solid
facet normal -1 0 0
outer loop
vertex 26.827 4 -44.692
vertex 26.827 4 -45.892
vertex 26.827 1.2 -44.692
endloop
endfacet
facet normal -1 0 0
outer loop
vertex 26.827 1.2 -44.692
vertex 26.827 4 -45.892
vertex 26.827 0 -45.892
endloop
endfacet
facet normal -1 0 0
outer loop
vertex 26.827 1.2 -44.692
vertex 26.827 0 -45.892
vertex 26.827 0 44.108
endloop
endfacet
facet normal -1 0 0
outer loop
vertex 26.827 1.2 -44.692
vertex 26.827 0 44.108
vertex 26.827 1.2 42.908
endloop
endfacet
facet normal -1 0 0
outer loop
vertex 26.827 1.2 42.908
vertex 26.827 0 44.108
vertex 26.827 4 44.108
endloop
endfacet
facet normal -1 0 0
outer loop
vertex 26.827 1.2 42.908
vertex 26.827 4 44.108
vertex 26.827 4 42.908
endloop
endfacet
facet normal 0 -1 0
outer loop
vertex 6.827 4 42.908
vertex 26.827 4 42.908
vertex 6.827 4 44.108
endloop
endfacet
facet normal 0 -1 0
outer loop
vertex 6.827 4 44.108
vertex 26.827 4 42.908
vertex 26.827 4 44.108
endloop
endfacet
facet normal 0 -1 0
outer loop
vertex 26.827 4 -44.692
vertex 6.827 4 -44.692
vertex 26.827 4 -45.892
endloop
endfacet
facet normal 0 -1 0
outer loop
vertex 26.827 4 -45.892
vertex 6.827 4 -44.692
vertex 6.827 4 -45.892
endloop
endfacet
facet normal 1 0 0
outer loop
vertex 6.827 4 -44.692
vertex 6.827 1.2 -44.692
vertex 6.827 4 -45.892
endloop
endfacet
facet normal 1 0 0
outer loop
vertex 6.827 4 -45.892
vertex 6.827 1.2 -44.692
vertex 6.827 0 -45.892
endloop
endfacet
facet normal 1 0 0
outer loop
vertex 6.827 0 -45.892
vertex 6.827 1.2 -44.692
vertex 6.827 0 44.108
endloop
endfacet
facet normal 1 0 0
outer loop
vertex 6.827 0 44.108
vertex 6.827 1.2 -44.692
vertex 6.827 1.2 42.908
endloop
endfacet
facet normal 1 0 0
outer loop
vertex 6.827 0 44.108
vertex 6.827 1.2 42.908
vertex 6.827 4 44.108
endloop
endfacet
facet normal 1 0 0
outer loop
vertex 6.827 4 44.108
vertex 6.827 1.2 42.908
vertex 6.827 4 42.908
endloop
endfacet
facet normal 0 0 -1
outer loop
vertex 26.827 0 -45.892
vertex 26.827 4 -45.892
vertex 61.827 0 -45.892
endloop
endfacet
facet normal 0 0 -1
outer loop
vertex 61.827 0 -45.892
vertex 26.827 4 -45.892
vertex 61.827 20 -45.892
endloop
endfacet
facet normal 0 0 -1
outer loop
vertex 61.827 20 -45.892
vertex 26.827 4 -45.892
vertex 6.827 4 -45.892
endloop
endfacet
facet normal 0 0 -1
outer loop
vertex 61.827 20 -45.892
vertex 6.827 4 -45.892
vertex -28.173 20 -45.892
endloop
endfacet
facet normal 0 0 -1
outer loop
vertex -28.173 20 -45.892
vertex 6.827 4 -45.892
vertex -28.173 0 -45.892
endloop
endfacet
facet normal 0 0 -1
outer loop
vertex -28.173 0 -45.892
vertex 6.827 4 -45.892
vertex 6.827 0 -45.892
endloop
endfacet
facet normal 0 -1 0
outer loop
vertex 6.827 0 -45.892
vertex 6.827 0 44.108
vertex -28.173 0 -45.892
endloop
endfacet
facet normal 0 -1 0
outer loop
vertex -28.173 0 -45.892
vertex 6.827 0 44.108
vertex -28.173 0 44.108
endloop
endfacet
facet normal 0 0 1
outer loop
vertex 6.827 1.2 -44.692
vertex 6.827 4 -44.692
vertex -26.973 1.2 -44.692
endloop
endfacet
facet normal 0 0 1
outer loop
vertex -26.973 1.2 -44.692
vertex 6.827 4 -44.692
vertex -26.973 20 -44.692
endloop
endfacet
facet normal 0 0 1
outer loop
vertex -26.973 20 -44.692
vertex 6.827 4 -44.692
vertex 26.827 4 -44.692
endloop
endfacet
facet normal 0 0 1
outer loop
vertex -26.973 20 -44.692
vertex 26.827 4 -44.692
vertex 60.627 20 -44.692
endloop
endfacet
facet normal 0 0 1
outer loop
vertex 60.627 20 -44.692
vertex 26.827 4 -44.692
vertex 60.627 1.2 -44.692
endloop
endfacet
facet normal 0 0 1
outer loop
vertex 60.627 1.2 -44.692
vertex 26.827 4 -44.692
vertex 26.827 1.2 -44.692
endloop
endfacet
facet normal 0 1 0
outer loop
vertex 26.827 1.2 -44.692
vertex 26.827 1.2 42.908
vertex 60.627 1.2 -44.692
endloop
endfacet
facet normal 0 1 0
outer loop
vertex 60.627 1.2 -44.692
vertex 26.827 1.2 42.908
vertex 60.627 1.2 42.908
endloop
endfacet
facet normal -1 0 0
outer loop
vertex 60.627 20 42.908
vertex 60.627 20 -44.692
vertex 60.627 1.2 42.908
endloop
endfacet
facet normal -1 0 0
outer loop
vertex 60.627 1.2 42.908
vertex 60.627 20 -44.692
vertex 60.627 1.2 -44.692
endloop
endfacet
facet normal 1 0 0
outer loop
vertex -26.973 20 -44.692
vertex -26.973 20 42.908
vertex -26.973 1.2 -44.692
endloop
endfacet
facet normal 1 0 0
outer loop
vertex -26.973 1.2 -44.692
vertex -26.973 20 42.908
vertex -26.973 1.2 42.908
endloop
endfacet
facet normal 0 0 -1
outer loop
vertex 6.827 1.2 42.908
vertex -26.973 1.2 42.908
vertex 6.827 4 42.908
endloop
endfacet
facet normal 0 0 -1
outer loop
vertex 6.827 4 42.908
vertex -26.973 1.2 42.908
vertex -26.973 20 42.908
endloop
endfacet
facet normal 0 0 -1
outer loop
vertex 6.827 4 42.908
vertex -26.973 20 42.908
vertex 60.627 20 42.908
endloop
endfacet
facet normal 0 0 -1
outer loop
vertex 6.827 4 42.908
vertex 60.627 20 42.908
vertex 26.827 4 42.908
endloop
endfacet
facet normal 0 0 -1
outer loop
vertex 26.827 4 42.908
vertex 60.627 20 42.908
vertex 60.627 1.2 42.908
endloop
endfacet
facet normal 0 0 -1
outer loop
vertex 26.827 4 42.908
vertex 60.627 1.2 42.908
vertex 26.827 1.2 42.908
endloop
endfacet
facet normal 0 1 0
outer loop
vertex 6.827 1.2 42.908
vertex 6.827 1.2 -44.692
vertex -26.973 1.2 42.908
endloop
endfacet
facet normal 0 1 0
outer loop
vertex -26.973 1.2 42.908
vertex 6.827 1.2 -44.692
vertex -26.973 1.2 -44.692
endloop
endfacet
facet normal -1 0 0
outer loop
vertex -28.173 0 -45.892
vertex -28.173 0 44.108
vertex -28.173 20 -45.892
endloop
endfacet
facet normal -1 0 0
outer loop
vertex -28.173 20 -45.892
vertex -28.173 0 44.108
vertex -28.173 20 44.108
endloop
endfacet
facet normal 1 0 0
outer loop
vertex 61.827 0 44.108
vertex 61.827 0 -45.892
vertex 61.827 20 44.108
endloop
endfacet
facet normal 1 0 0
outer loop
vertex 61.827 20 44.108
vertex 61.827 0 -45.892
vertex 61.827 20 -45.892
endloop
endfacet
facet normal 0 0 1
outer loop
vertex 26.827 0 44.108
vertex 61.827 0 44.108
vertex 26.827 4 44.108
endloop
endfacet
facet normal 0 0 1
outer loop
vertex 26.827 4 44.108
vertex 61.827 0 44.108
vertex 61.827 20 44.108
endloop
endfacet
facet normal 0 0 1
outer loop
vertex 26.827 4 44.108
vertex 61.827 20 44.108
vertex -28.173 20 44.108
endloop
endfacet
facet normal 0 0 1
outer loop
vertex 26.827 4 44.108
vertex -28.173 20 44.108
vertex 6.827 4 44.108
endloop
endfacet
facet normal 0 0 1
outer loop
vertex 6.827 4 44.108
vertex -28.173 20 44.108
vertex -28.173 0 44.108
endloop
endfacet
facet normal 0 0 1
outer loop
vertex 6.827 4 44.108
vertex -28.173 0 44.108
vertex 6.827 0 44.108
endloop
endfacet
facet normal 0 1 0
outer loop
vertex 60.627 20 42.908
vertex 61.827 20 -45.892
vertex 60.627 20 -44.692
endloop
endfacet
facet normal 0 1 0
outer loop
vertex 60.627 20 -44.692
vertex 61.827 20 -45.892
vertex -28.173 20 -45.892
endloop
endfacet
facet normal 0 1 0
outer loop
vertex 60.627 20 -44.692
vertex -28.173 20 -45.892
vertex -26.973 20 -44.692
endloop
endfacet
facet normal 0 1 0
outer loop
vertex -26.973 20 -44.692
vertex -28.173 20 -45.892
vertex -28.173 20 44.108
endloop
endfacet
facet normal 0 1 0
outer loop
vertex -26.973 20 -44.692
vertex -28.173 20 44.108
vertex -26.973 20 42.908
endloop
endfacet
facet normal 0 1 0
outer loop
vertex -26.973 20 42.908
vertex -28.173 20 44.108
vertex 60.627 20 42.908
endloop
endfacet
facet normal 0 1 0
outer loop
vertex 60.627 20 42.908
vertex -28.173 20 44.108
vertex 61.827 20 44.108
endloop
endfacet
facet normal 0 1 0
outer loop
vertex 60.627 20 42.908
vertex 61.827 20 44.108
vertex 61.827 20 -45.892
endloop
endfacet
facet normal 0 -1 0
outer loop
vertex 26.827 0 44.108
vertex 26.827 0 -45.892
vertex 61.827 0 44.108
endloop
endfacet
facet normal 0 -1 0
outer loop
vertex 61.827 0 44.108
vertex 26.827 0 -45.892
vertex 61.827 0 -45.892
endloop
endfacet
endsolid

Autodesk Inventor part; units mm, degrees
ref_plane "YZ Plane" through (0, 0, 0) normal (1, 0, 0) x (0, 1, 0)
ref_plane "XZ Plane" through (0, 0, 0) normal (0, 1, 0) x (-1, 0, 0)
ref_plane "XY Plane" through (0, 0, 0) normal (0, 0, 1) x (1, 0, 0)
sketch "Sketch1" plane through (0, 0, 0) normal (0, 1, 0) x (-1, 0, 0)
  line L0 (28.1728, 44.1076) -> (-61.8272, 44.1076)
  line L1 (-61.8272, 44.1076) -> (-61.8272, -45.8924)
  line L2 (-61.8272, -45.8924) -> (28.1728, -45.8924)
  line L3 (28.1728, -45.8924) -> (28.1728, 44.1076)
  point P0 (0, 0)
  dimension "d0" = 90
  dimension "d1" = 90
extrude "Extrusion1" add sketch "Sketch1" along normal blind 20
sketch "Sketch2" plane through (0, 20, 0) normal (0, 1, 0) x (1, 0, 0)
  line L0 (-26.9728, -42.9076) -> (60.6272, -42.9076)
  line L1 (60.6272, -42.9076) -> (60.6272, 44.6924)
  line L2 (60.6272, 44.6924) -> (-26.9728, 44.6924)
  line L3 (-26.9728, 44.6924) -> (-26.9728, -42.9076)
  line L4 (-28.1728, 45.8924) -> (-28.1728, -44.1076) projected
  line L5 (61.8272, 45.8924) -> (-28.1728, 45.8924) projected
  line L6 (61.8272, -44.1076) -> (61.8272, 45.8924) projected
  line L7 (-28.1728, -44.1076) -> (61.8272, -44.1076) projected
  point P0 (0, 0)
  dimension "d4" = 1.2
  dimension "d5" = 1.2
  dimension "d6" = 1.2
  dimension "d7" = 1.2
extrude "Extrusion2" cut sketch "Sketch2" against normal blind 18.8 contours L3 L2 L1 L0
sketch "Sketch3" plane through (-28.1728, 0, 44.1076) normal (0, 0, 1) x (1, 0, 0)
  line L0 (35, 4) -> (55, 4)
  line L1 (55, 4) -> (55, 0)
  line L2 (55, 0) -> (35, 0)
  line L3 (35, 0) -> (35, 4)
  line L4 (0, 0) -> (90, 0) projected
  line L5 (90, 0) -> (90, 20) projected
  point P0 (28.1728, 0)
  dimension "d10" = 20
  dimension "d11" = 4
  dimension "d12" = 35
extrude "Extrusion3" cut sketch "Sketch3" against normal blind 90
equation "\"d5\" = d4"
equation "\"d6\" = d4"
equation "\"d7\" = d4"
equation "\"d8\" = d2 - d4"
equation "\"d12\" = -0.5 * d10 + 0.5 * d0"
equation "\"d13\" = d0"
equation "\"d2\" = 20"
properties part number "weight_holder"
